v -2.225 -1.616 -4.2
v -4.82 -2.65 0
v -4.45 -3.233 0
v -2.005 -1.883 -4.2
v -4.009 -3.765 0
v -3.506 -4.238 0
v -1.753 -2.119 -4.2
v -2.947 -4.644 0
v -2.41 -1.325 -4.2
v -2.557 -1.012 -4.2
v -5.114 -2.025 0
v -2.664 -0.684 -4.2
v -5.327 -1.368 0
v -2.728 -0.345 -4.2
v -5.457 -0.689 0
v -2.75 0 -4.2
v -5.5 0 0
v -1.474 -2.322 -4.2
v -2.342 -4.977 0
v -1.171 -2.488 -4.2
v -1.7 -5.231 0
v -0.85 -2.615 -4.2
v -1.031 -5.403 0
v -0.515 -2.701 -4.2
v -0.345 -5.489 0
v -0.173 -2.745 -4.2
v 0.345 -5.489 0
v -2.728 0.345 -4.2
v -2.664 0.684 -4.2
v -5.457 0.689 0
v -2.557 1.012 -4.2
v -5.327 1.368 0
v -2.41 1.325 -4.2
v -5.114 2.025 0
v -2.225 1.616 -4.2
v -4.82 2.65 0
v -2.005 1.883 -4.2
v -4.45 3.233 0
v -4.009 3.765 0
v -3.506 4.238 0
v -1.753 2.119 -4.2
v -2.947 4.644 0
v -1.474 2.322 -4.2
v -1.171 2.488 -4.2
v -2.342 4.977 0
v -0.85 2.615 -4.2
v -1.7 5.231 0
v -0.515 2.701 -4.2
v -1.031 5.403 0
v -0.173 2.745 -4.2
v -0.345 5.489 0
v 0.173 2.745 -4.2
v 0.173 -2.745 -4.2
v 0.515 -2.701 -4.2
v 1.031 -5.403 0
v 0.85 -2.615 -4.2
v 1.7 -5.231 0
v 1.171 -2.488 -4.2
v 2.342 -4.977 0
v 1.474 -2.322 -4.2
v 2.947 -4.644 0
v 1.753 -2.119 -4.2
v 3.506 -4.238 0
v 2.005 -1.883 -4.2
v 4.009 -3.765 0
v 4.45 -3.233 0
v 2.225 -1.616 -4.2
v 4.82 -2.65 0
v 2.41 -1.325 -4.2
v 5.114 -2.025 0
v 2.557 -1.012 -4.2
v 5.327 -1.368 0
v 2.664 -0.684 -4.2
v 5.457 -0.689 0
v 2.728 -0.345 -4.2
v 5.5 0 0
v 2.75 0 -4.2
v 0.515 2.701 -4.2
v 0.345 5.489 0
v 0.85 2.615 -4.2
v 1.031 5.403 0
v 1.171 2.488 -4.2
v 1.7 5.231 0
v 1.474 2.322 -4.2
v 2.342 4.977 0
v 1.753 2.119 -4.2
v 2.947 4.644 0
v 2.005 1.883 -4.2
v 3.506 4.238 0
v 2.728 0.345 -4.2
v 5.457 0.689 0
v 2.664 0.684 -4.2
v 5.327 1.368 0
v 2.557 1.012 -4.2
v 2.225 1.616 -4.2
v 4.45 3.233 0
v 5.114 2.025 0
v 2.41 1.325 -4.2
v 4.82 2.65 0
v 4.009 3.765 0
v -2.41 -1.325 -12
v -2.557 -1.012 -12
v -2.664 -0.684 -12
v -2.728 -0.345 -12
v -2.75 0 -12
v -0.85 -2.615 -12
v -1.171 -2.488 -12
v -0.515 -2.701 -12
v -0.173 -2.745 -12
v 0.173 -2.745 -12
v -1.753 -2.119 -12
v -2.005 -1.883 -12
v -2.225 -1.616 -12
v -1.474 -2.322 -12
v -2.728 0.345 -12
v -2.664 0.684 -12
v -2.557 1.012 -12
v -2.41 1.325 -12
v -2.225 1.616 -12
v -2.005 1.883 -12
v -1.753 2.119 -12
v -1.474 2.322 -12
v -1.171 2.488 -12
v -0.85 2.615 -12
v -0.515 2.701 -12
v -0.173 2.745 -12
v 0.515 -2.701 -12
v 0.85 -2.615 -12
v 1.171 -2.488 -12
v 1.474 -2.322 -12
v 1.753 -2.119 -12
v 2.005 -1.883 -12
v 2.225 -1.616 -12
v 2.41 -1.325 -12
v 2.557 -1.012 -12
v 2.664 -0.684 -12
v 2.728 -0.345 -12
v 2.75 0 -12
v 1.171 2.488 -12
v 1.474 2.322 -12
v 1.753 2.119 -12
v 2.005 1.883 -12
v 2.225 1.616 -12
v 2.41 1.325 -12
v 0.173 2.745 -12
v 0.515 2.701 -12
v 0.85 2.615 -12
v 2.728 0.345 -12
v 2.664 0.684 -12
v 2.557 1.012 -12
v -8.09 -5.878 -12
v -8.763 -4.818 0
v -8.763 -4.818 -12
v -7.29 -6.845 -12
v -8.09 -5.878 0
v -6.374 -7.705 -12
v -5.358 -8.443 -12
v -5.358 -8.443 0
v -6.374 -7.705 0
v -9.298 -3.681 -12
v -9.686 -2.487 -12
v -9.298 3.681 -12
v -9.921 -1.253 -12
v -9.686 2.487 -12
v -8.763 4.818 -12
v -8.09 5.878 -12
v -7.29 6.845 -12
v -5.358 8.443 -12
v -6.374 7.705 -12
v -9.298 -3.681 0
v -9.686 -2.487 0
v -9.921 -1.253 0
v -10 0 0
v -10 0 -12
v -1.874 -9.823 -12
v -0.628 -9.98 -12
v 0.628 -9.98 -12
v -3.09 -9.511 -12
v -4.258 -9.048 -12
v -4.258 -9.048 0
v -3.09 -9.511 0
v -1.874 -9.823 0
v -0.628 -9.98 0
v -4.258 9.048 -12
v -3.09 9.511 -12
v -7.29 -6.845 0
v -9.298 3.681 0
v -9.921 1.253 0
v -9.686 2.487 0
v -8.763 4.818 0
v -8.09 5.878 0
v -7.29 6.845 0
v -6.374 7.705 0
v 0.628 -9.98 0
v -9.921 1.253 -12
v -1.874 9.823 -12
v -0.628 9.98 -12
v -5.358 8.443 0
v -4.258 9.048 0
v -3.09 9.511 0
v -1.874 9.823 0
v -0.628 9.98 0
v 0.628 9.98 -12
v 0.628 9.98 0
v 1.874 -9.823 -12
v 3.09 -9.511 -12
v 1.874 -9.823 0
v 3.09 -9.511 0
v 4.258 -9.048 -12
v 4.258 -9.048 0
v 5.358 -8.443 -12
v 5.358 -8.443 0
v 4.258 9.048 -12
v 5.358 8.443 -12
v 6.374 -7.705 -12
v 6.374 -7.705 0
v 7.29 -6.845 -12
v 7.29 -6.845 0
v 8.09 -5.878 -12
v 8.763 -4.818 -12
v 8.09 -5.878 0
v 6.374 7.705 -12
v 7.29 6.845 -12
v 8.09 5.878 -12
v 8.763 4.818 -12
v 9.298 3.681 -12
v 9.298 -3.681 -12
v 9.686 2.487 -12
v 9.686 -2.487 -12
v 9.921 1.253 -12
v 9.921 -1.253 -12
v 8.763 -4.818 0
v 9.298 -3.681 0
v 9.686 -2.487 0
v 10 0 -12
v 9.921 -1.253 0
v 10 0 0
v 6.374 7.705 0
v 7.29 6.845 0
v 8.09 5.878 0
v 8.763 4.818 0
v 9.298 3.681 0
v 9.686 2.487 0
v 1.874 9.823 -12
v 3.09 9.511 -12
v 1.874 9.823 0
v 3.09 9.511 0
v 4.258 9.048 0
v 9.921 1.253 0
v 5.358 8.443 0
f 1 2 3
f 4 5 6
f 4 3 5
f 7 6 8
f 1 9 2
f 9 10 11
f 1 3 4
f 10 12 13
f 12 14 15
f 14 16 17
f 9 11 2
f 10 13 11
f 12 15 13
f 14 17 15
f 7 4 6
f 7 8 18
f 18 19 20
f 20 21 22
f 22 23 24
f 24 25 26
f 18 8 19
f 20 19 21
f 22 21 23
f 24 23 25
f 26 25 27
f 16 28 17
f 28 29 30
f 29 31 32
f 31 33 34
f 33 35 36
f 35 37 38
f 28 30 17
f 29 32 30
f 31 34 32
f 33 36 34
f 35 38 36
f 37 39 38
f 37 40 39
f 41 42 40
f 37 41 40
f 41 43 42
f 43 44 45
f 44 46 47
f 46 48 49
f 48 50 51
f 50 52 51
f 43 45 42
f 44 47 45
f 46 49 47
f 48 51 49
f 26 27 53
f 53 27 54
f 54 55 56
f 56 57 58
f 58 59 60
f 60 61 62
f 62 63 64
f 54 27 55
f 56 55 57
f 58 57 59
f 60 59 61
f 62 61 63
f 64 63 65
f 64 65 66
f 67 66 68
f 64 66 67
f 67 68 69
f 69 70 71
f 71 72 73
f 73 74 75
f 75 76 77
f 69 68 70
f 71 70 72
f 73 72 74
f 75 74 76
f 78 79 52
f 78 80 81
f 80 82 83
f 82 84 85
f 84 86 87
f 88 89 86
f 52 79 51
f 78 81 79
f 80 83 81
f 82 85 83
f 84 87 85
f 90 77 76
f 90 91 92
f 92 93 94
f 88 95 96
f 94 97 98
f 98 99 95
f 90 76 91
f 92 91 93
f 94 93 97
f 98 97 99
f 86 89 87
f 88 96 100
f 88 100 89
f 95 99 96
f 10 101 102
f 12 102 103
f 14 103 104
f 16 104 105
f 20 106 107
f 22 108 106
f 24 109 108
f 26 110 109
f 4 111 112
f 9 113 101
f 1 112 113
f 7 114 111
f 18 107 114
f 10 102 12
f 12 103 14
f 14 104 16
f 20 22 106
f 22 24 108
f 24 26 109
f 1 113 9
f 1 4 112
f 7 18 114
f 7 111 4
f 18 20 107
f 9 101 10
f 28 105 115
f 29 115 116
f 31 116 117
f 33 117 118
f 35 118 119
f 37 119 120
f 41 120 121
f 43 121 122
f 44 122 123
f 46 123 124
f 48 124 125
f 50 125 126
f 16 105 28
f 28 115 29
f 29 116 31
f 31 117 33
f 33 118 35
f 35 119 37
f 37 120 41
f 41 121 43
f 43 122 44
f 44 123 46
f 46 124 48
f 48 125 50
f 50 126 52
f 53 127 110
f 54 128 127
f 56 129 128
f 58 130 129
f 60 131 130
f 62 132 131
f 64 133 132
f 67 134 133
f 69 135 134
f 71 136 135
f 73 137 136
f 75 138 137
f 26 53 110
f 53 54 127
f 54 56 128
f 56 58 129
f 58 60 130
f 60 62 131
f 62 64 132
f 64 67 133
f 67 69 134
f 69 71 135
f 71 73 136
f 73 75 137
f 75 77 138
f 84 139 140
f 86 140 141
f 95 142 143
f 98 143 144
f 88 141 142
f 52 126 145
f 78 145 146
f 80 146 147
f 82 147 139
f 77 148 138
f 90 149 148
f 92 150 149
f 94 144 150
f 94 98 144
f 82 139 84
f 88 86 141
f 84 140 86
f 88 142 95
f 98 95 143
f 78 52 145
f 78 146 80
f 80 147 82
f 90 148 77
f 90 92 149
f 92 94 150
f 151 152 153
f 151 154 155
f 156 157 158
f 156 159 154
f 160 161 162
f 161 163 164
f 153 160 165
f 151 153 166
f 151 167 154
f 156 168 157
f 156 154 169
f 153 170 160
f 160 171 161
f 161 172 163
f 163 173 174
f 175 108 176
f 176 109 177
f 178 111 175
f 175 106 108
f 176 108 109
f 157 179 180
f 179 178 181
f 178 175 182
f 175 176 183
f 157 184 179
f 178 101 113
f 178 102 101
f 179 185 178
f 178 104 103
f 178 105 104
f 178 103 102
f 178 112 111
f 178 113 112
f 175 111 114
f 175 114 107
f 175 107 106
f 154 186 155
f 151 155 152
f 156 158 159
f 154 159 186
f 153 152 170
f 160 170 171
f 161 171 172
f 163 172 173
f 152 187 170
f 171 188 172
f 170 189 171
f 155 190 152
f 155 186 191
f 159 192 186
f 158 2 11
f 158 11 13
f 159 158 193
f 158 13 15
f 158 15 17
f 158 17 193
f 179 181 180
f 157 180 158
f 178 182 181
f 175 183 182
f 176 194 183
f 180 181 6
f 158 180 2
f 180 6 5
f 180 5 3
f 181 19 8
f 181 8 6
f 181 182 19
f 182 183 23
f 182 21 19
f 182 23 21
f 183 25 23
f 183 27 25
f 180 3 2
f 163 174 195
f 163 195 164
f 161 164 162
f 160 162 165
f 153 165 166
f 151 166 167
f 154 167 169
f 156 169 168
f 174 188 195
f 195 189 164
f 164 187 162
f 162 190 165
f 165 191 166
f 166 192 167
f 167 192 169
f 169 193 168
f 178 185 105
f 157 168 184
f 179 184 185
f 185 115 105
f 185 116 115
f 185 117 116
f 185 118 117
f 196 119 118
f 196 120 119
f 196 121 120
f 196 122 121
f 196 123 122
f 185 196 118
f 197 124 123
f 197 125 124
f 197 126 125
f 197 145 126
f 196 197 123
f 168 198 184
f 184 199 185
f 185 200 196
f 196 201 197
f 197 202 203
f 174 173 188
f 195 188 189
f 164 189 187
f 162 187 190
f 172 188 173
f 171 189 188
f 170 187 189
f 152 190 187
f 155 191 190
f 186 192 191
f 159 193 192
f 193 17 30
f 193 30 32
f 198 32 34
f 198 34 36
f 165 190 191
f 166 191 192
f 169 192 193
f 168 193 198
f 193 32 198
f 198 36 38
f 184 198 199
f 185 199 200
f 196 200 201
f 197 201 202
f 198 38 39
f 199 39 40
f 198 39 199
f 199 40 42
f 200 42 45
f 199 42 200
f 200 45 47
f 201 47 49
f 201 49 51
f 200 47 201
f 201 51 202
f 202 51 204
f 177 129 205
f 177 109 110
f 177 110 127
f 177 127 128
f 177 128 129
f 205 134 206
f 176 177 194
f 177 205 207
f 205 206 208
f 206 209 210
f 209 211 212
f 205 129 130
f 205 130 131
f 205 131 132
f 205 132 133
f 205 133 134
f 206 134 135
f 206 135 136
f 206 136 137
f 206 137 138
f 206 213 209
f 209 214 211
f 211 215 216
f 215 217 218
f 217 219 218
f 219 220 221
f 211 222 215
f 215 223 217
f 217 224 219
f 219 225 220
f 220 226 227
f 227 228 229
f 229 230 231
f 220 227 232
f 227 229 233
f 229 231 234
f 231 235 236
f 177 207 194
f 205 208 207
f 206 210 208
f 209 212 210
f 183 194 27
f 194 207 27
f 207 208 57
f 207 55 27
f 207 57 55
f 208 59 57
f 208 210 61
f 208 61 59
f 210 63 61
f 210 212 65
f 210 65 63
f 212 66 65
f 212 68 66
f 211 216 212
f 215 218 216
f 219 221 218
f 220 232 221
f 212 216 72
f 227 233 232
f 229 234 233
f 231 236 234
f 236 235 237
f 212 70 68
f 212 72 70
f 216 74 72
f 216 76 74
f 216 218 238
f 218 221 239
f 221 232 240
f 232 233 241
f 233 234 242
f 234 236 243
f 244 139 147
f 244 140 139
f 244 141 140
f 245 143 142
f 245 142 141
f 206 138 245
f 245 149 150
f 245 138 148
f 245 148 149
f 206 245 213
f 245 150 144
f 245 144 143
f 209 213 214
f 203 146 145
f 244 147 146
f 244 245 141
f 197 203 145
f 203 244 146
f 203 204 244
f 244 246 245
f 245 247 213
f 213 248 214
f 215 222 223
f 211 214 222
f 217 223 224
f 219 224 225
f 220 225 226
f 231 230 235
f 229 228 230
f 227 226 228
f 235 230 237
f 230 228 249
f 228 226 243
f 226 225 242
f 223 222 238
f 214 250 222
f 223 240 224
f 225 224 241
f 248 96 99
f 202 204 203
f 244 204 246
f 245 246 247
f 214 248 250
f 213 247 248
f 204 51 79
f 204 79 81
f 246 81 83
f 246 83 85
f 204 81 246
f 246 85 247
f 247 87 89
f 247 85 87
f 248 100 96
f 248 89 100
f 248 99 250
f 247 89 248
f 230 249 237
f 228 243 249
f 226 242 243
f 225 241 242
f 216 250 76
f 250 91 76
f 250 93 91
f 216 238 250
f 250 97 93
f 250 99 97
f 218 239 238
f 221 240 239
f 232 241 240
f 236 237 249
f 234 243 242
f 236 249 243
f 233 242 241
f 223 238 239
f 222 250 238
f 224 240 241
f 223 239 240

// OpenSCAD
$fn = 50;

difference() {
	union() {
		translate(v = [0, 0, -12.0]) {
			cylinder(h = 12, r = 10.0);
		}
	}
	union() {
		translate(v = [0, 0, 0]) {
			rotate(a = [0, 0, 0]) {
				difference() {
					union() {
						translate(v = [0, 0, -15.0]) {
							cylinder(h = 15, r = 2.25);
						}
						translate(v = [0, 0, -4.2]) {
							cylinder(h = 4.2, r1 = 2.75, r2 = 5.5);
						}
						translate(v = [0, 0, -15.0]) {
							cylinder(h = 15, r = 2.75);
						}
						translate(v = [0, 0, -15.0]) {
							cylinder(h = 15, r = 2.25);
						}
					}
					union();
				}
			}
		}
	}
}
